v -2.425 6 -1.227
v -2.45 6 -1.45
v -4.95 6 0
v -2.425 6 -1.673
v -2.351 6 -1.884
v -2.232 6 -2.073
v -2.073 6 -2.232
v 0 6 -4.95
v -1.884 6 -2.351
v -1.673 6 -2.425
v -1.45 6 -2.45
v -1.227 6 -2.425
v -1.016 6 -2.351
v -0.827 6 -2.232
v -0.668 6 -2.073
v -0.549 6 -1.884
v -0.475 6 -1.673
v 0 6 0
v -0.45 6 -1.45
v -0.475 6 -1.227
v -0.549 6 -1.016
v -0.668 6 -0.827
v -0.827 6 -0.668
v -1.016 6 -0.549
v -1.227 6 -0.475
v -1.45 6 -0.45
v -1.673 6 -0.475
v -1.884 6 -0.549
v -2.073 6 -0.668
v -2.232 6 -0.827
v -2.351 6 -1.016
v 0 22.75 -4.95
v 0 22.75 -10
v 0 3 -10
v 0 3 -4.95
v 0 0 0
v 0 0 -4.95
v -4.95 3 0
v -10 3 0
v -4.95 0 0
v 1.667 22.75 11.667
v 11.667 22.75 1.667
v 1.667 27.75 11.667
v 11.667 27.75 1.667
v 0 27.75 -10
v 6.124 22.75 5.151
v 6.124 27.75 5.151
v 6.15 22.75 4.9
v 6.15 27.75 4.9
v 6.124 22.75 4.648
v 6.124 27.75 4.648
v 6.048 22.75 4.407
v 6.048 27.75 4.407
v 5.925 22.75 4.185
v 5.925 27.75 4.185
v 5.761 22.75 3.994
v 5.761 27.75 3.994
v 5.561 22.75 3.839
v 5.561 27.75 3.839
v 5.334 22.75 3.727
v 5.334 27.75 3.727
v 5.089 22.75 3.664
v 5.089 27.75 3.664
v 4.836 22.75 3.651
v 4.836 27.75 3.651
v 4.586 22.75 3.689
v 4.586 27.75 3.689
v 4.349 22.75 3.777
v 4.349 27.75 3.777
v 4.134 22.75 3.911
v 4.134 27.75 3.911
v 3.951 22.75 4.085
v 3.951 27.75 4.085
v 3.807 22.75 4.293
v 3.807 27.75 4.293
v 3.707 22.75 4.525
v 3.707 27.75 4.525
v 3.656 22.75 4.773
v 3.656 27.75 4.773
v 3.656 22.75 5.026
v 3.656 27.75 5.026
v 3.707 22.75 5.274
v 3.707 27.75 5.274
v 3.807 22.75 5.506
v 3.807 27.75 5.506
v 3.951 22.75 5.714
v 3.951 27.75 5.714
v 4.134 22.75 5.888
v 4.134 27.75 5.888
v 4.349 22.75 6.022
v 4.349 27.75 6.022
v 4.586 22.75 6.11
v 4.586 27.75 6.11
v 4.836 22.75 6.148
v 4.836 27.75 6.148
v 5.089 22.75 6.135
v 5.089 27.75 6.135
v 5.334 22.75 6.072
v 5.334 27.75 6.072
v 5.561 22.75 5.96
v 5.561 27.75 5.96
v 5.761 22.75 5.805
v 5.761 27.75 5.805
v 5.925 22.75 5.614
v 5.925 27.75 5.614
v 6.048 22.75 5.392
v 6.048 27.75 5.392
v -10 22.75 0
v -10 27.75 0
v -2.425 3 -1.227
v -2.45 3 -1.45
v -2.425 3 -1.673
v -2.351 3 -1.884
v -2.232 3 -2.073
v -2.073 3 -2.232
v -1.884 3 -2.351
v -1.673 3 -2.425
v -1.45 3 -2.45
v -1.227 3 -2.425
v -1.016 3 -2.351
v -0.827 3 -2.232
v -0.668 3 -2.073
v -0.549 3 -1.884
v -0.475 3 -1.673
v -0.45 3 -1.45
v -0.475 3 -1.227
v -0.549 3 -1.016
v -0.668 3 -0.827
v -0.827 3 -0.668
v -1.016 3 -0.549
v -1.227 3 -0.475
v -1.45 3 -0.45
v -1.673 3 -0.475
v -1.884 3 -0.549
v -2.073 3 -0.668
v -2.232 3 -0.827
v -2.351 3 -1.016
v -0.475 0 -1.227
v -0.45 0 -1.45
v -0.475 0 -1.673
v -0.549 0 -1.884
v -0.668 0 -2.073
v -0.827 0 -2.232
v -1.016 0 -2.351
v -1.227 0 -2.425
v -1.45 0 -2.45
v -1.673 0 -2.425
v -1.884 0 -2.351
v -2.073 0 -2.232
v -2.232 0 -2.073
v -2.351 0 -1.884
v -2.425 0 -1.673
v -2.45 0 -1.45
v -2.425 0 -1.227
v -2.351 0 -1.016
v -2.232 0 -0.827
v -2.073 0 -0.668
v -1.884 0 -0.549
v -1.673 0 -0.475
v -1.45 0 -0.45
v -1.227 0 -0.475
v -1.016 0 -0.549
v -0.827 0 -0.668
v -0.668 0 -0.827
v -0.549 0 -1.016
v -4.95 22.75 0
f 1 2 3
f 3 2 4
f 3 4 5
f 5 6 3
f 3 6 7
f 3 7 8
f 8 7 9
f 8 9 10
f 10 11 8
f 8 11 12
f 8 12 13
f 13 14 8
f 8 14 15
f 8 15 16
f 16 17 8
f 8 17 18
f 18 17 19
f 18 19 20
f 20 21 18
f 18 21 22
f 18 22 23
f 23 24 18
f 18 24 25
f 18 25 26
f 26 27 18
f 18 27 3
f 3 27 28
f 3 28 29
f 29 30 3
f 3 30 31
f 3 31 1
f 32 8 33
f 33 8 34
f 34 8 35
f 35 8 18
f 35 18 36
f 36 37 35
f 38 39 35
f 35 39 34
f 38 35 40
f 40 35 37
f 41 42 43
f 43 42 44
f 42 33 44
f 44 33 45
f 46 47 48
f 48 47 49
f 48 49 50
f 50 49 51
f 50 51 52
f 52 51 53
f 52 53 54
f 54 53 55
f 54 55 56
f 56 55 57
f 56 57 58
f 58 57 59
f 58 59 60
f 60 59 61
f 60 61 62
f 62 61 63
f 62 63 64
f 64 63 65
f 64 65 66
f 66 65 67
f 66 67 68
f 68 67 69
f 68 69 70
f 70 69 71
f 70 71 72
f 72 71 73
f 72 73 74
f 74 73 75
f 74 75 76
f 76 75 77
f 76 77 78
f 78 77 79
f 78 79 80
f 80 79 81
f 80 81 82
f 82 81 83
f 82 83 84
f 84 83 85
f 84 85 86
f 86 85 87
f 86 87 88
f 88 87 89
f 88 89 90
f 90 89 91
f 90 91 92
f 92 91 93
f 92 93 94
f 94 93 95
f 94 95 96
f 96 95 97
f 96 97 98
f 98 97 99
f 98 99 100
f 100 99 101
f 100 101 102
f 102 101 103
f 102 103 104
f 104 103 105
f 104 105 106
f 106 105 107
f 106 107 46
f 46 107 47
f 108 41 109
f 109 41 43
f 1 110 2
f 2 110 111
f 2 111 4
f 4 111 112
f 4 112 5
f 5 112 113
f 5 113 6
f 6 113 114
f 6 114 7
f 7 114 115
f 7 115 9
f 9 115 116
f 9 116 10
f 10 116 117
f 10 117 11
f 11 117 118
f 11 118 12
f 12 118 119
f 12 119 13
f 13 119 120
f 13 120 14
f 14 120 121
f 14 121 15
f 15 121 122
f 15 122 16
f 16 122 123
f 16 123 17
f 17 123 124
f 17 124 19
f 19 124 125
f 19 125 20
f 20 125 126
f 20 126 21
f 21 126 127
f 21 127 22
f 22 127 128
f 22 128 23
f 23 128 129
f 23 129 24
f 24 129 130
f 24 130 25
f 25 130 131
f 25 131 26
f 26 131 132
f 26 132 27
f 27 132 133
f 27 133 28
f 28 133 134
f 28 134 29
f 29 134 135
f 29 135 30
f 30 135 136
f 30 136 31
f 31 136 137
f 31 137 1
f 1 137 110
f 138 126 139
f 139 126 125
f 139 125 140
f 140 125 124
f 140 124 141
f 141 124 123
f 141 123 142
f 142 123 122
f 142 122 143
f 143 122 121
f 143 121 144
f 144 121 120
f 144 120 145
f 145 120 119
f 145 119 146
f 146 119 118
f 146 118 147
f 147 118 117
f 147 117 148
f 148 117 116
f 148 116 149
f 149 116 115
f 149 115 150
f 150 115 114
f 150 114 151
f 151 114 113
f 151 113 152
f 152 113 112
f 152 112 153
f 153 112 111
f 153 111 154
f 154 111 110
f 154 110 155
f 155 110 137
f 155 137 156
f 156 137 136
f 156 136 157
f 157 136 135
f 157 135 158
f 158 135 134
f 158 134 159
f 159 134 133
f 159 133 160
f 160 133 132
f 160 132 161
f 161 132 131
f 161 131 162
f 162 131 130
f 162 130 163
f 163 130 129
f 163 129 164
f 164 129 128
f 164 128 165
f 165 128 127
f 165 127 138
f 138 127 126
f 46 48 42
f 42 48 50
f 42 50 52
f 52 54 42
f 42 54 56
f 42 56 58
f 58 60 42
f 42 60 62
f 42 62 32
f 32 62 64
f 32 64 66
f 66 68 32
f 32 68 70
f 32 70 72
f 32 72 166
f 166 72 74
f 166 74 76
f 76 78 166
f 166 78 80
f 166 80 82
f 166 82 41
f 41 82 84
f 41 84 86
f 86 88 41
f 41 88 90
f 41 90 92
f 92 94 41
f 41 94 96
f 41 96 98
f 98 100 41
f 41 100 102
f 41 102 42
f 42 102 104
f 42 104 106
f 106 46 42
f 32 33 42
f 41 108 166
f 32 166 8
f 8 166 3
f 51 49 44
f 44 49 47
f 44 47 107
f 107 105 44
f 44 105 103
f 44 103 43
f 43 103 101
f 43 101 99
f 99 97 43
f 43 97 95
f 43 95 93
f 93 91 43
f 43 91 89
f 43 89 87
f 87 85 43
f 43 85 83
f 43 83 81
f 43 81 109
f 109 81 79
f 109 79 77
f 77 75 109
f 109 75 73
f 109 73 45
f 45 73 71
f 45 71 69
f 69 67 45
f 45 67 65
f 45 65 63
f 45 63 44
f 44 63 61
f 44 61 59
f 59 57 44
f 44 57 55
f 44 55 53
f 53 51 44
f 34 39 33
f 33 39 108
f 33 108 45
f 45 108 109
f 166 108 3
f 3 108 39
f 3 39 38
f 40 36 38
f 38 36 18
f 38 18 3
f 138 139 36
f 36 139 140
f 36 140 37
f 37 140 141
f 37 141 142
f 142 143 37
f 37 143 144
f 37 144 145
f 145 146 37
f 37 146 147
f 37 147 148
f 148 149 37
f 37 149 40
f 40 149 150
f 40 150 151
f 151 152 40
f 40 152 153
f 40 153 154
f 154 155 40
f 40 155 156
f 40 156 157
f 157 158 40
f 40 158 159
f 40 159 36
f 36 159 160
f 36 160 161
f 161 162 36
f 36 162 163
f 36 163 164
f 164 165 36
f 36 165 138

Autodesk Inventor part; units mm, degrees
ref_plane "YZ Plane" through (0, 0, 0) normal (1, 0, 0) x (0, 1, 0)
ref_plane "XZ Plane" through (0, 0, 0) normal (0, 1, 0) x (-1, 0, 0)
ref_plane "XY Plane" through (0, 0, 0) normal (0, 0, 1) x (1, 0, 0)
sketch "Sketch1" plane through (0, 0, 0) normal (0, 1, 0) x (-1, 0, 0)
  line L0 (0, 0) -> (4.95, 0)
  line L1 (0, 0) -> (0, -4.95)
  line L2 (0, -4.95) -> (4.95, 0)
  dimension "d0" = 4.95
  dimension "d1" = 4.95
extrude "Extrusion1" add sketch "Sketch1" along normal blind 6
sketch "Sketch2" plane through (0, 6, 0) normal (0, 1, 0) x (1, 0, 0)
  line L0 (-4.95, 0) -> (0, 0) projected
  line L1 (0, 0) -> (-10, 0)
  line L2 (0, 0) -> (0, 10)
  line L3 (0, 10) -> (-10, 0)
  dimension "d4" = 10
  dimension "d5" = 10
extrude "Extrusion2" add sketch "Sketch2" along normal blind 2
sketch "Sketch3" plane through (0, 8, 0) normal (0, 1, 0) x (1, 0, 0)
  line L0 (-10, 0) -> (-4.95, 0) projected
  line L1 (-10, 0) -> (-4.95, 0)
  line L2 (0, 4.95) -> (0, 10) projected
  line L3 (-4.95, 0) -> (0, 4.95)
  line L4 (0, 4.95) -> (0, 10)
  line L5 (0, 10) -> (-10, 0)
  point P0 (0, 0)
extrude "Extrusion3" add sketch "Sketch3" along normal blind 19.75
sketch "Sketch4" plane through (0, 27.75, 0) normal (0, 1, 0) x (1, 0, 0)
  line L0 (-4.95, 0) -> (0, 0) projected
  line L1 (-4.95, 0) -> (0, 0)
  line L2 (-4.95, 0) -> (0, 4.95) projected
  line L3 (0, 0) -> (0, 4.95) projected
extrude "Extrusion4" add sketch "Sketch4" against normal blind 5
sketch "Sketch6" plane through (0, 27.75, 0) normal (0, 1, 0) x (1, 0, 0)
  line L0 (-10, 0) -> (-4.95, 0) projected
  line L1 (-10, 0) -> (0, 10)
  line L2 (0, 10) -> (-10, 0) projected
  line L3 (-4.95, 0) -> (0, 0) projected
  line L4 (0, 0) -> (0, 10) projected
  circle A0 centre (-2.6665, 2.6666) radius 1.25
  dimension "d12" = 2.5
  dimension "d17" = 3.3
  dimension "d18" = 2.6665
  dimension "d19" = 2.6666
extrude "Extrusion5" cut sketch "Sketch6" against normal blind 5 contours A0
sketch "Sketch7" plane through (0, 8, 0) normal (0, 1, 0) x (1, 0, 0)
  line L0 (0, 4.95) -> (-4.95, 0) projected
  line L1 (0, 4.95) -> (-4.95, 0)
  line L2 (0, 4.95) -> (-4.95, 0) projected
  line L3 (0, 0) -> (0, 4.95) projected
  line L4 (-4.95, 0) -> (0, 0)
  line L5 (0, 0) -> (0, 4.95)
extrude "Extrusion6" add sketch "Sketch7" along normal blind 2
sketch "Sketch8" plane through (0, 0, 0) normal (0, -1, 0) x (1, 0, 0)
  line L0 (-4.95, 0) -> (0, 0) projected
  line L1 (0, 0) -> (0, -4.95) projected
  circle A0 centre (-1.45, -1.45) radius 1
  dimension "d20" = 1.45
  dimension "d21" = 1.45
  dimension "d22" = 2
extrude "Extrusion7" cut sketch "Sketch8" against normal up to surface (10 mm away)
sketch "Sketch9" plane through (0, 27.75, 0) normal (0, 1, 0) x (1, 0, 0)
  line L0 (0, 10) -> (10.5977, -0.5977)
  line L1 (0, 0) -> (0, 10) projected
  line L2 (0, 10) -> (-10, 0) projected
  line L3 (0, 10) -> (11.6673, -1.6673)
  line L4 (11.6673, -1.6673) -> (1.6673, -11.6673)
  line L5 (11.6673, -1.6673) -> (30.5491, -1.6673) construction
  line L6 (-10, 0) -> (1.6673, -11.6673)
  arc A0 (8.435, -4.8995) -> (4.8995, -8.435) centre (6.6673, -6.6673) ccw
  line L7 (6.6673, -6.6673) -> (4.8995, -4.8995)
  circle A1 centre (4.8995, -4.8995) radius 1.25
  point P0 (10.5977, -0.5977)
  dimension "d25" = 45
  dimension "d26" = 16.5
  dimension "d27" = 135
  dimension "d28" = 5
  dimension "d29" = 2.5
extrude "Extrusion8" add sketch "Sketch9" against normal up to surface (5 mm away) contours L0 L3 L4 A0 A1 L6 L2 | L4 L7 A1 A0 | A0 A1 L7 L4
sketch "Sketch10" plane through (0, 6, 0) normal (0, -1, 0) x (1, 0, 0)
  line L0 (0, -4.95) -> (-4.95, 0) projected
  line L1 (-10, 0) -> (-4.95, 0) projected
  line L2 (0, -10) -> (-10, 0) projected
  line L3 (0, -4.95) -> (0, -10) projected
  point P0 (0, 0)
extrude "Extrusion9" add sketch "Sketch10" along normal blind 3
sketch "Sketch11" plane through (0, 10, 0) normal (0, 1, 0) x (1, 0, 0)
  line L0 (0, 0) -> (0, 4.95) projected
  line L1 (-4.95, 0) -> (0, 4.95) projected
  line L2 (-4.95, 0) -> (0, 0) projected
extrude "Extrusion10" cut sketch "Sketch11" against normal blind 4
properties part number "bracket servo left_3DPrint"
